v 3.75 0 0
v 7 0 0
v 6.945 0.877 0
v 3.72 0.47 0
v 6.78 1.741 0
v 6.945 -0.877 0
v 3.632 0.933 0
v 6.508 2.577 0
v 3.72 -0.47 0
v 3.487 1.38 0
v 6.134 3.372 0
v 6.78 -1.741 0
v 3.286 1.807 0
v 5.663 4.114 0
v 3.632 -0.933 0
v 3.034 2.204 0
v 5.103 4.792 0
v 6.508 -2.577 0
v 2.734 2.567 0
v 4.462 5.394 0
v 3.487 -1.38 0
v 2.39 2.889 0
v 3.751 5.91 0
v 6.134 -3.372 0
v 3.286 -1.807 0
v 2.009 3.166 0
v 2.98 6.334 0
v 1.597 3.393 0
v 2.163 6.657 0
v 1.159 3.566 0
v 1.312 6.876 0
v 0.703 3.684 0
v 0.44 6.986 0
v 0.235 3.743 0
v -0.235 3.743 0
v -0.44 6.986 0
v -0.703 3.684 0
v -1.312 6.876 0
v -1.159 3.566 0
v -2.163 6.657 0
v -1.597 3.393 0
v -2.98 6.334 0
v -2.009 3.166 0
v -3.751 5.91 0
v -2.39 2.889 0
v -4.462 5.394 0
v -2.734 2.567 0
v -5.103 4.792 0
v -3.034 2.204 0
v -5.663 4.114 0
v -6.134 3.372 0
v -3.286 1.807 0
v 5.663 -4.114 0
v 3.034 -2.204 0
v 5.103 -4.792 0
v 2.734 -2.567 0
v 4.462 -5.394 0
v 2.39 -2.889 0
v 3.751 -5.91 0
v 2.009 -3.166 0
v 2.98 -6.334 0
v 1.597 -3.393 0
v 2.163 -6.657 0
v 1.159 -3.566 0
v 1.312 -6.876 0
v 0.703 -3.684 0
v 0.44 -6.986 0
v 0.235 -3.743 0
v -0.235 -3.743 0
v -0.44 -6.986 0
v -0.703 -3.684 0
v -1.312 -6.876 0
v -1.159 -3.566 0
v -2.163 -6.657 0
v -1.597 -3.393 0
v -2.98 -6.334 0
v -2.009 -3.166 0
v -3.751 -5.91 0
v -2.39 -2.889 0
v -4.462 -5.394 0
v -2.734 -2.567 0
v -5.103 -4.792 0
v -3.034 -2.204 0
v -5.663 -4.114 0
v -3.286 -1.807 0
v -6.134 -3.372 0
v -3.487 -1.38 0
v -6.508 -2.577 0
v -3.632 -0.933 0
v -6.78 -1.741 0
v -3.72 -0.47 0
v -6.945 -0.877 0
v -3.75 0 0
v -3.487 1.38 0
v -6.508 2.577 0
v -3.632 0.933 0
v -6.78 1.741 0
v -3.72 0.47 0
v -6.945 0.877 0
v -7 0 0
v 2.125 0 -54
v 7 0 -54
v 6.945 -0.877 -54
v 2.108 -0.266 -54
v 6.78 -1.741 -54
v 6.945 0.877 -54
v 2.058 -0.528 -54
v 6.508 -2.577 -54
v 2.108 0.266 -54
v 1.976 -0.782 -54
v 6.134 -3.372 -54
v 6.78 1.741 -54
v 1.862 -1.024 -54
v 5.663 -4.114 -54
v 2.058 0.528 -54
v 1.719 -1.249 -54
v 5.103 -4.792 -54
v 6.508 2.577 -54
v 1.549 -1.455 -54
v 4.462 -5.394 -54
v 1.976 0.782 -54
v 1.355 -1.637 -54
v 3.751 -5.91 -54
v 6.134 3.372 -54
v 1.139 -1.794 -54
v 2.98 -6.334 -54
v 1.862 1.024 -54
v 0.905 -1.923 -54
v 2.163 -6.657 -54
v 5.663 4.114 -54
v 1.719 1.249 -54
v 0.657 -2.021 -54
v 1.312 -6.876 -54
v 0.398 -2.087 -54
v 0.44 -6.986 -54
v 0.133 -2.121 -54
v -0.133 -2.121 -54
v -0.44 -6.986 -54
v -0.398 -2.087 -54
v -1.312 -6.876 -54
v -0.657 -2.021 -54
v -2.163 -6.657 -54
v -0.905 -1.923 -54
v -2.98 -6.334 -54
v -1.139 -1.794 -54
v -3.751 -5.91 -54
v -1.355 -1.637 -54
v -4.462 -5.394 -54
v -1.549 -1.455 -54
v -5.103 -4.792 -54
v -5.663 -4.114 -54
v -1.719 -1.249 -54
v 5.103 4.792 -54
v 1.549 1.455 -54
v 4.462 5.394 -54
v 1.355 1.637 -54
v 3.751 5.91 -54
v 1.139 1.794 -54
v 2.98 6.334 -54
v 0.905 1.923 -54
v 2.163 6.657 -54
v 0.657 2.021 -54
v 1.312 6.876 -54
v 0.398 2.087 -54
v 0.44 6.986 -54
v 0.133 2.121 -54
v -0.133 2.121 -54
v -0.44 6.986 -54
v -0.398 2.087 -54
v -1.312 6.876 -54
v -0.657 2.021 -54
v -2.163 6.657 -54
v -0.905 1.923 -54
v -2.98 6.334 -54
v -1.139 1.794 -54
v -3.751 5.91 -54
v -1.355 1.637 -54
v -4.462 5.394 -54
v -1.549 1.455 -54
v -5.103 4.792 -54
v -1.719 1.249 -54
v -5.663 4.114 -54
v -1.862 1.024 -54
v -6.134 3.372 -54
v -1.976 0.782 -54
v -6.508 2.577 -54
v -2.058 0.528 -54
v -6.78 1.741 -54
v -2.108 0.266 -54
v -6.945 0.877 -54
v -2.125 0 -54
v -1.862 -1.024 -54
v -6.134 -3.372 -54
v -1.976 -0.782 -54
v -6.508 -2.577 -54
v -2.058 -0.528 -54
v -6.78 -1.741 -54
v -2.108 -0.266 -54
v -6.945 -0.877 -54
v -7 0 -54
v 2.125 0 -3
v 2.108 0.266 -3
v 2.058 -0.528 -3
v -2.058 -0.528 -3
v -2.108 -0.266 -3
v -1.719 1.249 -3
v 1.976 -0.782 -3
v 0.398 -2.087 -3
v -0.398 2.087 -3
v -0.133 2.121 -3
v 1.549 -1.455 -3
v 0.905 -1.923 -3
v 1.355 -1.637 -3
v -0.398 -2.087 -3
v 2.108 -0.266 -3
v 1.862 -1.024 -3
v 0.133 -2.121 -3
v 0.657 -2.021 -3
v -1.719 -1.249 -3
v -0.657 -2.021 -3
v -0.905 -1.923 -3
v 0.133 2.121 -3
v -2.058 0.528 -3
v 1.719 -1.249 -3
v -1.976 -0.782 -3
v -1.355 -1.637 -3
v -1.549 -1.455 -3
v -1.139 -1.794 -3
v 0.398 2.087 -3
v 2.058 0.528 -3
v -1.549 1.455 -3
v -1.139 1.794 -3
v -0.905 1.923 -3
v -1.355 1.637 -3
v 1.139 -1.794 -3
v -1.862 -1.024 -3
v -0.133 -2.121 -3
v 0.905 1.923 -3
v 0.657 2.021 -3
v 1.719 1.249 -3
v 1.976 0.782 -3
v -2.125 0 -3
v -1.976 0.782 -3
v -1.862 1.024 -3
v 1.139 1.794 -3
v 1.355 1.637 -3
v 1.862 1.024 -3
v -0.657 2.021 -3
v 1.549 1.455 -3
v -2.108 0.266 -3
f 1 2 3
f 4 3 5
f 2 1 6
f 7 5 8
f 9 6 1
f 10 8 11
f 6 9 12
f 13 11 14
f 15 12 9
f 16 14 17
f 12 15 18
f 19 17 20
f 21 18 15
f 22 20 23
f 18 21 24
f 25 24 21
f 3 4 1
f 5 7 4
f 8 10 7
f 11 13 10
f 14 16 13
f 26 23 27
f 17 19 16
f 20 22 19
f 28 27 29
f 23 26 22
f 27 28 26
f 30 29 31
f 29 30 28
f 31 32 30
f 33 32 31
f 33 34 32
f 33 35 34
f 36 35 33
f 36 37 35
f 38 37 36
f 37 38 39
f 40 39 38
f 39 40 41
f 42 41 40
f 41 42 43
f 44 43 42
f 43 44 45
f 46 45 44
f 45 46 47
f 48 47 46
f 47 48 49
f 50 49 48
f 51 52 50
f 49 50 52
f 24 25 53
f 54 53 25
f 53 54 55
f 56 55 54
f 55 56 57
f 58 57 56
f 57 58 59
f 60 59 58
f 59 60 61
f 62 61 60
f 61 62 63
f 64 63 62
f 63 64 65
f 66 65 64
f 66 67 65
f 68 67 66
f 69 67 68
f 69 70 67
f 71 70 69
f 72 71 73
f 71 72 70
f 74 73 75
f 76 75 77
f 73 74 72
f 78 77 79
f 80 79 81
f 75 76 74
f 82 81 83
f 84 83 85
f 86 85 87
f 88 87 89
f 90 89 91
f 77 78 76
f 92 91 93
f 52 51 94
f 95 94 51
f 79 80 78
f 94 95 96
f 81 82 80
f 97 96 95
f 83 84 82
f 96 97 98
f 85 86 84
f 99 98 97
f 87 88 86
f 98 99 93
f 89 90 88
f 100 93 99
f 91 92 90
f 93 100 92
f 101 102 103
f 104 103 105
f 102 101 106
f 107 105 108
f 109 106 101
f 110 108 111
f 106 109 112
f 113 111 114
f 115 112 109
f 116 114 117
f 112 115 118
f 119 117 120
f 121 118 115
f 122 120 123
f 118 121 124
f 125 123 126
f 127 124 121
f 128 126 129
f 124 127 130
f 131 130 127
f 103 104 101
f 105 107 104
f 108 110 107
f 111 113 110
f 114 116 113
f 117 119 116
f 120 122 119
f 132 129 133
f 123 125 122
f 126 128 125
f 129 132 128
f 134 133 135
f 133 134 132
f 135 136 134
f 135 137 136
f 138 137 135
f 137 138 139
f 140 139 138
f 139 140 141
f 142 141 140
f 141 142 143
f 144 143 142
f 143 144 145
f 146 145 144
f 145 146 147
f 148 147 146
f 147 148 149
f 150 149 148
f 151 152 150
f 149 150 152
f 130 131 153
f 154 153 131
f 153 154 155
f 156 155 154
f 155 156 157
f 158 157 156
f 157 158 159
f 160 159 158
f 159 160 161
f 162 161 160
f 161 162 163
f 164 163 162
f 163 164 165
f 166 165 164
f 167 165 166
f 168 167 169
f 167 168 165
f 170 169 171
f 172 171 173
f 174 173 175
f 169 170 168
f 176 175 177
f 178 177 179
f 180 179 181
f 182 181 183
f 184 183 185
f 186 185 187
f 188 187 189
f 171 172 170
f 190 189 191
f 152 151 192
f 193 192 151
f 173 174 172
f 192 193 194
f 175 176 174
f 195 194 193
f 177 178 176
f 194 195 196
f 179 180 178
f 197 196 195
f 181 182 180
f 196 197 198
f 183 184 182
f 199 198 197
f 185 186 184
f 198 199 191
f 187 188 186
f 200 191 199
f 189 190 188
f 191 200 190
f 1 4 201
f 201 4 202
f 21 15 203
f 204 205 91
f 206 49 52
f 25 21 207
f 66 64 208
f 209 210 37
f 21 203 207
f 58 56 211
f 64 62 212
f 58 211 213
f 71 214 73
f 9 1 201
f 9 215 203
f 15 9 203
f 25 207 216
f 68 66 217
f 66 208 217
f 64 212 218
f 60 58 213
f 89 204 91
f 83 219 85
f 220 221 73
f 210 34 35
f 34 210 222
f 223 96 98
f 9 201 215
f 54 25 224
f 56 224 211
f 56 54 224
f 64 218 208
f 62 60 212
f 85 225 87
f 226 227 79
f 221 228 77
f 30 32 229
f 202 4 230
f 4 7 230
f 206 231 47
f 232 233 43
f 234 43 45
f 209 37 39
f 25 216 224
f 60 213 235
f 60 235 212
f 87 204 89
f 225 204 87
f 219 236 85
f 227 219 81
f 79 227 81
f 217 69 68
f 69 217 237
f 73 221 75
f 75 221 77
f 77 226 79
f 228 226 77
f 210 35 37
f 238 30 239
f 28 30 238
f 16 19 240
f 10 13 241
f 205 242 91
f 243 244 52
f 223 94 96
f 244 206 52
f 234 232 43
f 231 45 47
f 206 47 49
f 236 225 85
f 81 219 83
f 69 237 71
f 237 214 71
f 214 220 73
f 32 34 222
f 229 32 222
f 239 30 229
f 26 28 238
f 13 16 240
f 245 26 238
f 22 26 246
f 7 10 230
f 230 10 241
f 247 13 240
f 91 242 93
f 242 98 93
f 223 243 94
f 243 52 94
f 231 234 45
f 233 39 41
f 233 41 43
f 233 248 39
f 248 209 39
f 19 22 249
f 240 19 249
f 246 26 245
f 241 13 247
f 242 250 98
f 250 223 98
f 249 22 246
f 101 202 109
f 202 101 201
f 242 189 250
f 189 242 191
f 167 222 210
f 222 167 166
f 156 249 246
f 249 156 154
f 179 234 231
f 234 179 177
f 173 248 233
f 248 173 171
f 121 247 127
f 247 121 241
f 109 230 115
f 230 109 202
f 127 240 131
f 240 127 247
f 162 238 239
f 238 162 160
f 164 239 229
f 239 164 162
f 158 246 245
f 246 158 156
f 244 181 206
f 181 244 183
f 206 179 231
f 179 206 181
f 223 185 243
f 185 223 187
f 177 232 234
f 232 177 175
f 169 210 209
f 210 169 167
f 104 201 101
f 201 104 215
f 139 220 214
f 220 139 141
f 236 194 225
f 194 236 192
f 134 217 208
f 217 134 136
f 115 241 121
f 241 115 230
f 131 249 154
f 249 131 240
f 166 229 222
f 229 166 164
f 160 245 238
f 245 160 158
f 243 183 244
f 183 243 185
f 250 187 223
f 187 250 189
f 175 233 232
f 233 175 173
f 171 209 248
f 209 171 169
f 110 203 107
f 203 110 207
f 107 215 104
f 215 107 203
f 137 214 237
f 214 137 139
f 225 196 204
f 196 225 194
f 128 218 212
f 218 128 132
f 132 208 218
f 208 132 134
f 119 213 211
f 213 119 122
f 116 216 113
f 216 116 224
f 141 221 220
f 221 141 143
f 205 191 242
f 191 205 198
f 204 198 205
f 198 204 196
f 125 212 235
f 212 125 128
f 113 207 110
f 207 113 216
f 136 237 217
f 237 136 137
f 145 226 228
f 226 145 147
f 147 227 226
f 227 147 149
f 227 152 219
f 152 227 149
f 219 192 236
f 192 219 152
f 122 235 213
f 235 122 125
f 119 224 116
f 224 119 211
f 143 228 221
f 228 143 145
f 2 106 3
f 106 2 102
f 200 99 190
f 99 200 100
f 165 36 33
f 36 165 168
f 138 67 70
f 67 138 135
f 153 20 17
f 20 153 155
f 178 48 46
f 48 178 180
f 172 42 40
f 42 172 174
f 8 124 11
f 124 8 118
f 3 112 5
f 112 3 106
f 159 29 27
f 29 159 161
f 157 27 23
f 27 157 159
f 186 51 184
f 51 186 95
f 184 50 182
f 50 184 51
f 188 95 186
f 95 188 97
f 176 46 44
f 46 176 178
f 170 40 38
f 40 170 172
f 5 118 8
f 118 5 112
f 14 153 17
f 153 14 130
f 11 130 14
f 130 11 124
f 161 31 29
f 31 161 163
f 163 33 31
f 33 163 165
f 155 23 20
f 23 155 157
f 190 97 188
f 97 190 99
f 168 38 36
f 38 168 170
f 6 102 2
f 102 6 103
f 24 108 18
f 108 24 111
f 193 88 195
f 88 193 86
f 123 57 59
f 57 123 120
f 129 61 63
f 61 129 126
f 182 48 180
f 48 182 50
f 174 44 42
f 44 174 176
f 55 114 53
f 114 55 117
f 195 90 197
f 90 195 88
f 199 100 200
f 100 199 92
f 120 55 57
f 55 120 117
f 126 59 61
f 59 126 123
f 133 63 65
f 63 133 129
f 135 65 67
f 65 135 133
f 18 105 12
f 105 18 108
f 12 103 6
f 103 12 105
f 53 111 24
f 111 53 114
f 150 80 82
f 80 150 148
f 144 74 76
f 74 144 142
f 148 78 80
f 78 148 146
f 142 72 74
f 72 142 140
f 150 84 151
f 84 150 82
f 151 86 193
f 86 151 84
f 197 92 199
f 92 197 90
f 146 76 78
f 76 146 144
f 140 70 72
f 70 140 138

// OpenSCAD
$fn = 50;


difference() {
	union() {
		translate(v = [0, 0, -54.0000000000]) {
			cylinder(h = 54, r = 7.0000000000);
		}
		cylinder(h = 0, r = 13.0000000000);
	}
	union() {
		translate(v = [0, 0, 0]) {
			rotate(a = [0, 0, 0]) {
				difference() {
					union() {
						#translate(v = [0, 0, -54.0000000000]) {
							cylinder(h = 54, r = 2.0000000000);
						}
						#translate(v = [0, 0, -3]) {
							cylinder(h = 3, r = 7.0000000000, r1 = 2.1250000000, r2 = 3.7500000000);
						}
						#translate(v = [0, 0, -54.0000000000]) {
							cylinder(h = 54, r = 2.1250000000);
						}
						#translate(v = [0, 0, -54.0000000000]) {
							cylinder(h = 54, r = 2.0000000000);
						}
					}
					union();
				}
			}
		}
	}
}
